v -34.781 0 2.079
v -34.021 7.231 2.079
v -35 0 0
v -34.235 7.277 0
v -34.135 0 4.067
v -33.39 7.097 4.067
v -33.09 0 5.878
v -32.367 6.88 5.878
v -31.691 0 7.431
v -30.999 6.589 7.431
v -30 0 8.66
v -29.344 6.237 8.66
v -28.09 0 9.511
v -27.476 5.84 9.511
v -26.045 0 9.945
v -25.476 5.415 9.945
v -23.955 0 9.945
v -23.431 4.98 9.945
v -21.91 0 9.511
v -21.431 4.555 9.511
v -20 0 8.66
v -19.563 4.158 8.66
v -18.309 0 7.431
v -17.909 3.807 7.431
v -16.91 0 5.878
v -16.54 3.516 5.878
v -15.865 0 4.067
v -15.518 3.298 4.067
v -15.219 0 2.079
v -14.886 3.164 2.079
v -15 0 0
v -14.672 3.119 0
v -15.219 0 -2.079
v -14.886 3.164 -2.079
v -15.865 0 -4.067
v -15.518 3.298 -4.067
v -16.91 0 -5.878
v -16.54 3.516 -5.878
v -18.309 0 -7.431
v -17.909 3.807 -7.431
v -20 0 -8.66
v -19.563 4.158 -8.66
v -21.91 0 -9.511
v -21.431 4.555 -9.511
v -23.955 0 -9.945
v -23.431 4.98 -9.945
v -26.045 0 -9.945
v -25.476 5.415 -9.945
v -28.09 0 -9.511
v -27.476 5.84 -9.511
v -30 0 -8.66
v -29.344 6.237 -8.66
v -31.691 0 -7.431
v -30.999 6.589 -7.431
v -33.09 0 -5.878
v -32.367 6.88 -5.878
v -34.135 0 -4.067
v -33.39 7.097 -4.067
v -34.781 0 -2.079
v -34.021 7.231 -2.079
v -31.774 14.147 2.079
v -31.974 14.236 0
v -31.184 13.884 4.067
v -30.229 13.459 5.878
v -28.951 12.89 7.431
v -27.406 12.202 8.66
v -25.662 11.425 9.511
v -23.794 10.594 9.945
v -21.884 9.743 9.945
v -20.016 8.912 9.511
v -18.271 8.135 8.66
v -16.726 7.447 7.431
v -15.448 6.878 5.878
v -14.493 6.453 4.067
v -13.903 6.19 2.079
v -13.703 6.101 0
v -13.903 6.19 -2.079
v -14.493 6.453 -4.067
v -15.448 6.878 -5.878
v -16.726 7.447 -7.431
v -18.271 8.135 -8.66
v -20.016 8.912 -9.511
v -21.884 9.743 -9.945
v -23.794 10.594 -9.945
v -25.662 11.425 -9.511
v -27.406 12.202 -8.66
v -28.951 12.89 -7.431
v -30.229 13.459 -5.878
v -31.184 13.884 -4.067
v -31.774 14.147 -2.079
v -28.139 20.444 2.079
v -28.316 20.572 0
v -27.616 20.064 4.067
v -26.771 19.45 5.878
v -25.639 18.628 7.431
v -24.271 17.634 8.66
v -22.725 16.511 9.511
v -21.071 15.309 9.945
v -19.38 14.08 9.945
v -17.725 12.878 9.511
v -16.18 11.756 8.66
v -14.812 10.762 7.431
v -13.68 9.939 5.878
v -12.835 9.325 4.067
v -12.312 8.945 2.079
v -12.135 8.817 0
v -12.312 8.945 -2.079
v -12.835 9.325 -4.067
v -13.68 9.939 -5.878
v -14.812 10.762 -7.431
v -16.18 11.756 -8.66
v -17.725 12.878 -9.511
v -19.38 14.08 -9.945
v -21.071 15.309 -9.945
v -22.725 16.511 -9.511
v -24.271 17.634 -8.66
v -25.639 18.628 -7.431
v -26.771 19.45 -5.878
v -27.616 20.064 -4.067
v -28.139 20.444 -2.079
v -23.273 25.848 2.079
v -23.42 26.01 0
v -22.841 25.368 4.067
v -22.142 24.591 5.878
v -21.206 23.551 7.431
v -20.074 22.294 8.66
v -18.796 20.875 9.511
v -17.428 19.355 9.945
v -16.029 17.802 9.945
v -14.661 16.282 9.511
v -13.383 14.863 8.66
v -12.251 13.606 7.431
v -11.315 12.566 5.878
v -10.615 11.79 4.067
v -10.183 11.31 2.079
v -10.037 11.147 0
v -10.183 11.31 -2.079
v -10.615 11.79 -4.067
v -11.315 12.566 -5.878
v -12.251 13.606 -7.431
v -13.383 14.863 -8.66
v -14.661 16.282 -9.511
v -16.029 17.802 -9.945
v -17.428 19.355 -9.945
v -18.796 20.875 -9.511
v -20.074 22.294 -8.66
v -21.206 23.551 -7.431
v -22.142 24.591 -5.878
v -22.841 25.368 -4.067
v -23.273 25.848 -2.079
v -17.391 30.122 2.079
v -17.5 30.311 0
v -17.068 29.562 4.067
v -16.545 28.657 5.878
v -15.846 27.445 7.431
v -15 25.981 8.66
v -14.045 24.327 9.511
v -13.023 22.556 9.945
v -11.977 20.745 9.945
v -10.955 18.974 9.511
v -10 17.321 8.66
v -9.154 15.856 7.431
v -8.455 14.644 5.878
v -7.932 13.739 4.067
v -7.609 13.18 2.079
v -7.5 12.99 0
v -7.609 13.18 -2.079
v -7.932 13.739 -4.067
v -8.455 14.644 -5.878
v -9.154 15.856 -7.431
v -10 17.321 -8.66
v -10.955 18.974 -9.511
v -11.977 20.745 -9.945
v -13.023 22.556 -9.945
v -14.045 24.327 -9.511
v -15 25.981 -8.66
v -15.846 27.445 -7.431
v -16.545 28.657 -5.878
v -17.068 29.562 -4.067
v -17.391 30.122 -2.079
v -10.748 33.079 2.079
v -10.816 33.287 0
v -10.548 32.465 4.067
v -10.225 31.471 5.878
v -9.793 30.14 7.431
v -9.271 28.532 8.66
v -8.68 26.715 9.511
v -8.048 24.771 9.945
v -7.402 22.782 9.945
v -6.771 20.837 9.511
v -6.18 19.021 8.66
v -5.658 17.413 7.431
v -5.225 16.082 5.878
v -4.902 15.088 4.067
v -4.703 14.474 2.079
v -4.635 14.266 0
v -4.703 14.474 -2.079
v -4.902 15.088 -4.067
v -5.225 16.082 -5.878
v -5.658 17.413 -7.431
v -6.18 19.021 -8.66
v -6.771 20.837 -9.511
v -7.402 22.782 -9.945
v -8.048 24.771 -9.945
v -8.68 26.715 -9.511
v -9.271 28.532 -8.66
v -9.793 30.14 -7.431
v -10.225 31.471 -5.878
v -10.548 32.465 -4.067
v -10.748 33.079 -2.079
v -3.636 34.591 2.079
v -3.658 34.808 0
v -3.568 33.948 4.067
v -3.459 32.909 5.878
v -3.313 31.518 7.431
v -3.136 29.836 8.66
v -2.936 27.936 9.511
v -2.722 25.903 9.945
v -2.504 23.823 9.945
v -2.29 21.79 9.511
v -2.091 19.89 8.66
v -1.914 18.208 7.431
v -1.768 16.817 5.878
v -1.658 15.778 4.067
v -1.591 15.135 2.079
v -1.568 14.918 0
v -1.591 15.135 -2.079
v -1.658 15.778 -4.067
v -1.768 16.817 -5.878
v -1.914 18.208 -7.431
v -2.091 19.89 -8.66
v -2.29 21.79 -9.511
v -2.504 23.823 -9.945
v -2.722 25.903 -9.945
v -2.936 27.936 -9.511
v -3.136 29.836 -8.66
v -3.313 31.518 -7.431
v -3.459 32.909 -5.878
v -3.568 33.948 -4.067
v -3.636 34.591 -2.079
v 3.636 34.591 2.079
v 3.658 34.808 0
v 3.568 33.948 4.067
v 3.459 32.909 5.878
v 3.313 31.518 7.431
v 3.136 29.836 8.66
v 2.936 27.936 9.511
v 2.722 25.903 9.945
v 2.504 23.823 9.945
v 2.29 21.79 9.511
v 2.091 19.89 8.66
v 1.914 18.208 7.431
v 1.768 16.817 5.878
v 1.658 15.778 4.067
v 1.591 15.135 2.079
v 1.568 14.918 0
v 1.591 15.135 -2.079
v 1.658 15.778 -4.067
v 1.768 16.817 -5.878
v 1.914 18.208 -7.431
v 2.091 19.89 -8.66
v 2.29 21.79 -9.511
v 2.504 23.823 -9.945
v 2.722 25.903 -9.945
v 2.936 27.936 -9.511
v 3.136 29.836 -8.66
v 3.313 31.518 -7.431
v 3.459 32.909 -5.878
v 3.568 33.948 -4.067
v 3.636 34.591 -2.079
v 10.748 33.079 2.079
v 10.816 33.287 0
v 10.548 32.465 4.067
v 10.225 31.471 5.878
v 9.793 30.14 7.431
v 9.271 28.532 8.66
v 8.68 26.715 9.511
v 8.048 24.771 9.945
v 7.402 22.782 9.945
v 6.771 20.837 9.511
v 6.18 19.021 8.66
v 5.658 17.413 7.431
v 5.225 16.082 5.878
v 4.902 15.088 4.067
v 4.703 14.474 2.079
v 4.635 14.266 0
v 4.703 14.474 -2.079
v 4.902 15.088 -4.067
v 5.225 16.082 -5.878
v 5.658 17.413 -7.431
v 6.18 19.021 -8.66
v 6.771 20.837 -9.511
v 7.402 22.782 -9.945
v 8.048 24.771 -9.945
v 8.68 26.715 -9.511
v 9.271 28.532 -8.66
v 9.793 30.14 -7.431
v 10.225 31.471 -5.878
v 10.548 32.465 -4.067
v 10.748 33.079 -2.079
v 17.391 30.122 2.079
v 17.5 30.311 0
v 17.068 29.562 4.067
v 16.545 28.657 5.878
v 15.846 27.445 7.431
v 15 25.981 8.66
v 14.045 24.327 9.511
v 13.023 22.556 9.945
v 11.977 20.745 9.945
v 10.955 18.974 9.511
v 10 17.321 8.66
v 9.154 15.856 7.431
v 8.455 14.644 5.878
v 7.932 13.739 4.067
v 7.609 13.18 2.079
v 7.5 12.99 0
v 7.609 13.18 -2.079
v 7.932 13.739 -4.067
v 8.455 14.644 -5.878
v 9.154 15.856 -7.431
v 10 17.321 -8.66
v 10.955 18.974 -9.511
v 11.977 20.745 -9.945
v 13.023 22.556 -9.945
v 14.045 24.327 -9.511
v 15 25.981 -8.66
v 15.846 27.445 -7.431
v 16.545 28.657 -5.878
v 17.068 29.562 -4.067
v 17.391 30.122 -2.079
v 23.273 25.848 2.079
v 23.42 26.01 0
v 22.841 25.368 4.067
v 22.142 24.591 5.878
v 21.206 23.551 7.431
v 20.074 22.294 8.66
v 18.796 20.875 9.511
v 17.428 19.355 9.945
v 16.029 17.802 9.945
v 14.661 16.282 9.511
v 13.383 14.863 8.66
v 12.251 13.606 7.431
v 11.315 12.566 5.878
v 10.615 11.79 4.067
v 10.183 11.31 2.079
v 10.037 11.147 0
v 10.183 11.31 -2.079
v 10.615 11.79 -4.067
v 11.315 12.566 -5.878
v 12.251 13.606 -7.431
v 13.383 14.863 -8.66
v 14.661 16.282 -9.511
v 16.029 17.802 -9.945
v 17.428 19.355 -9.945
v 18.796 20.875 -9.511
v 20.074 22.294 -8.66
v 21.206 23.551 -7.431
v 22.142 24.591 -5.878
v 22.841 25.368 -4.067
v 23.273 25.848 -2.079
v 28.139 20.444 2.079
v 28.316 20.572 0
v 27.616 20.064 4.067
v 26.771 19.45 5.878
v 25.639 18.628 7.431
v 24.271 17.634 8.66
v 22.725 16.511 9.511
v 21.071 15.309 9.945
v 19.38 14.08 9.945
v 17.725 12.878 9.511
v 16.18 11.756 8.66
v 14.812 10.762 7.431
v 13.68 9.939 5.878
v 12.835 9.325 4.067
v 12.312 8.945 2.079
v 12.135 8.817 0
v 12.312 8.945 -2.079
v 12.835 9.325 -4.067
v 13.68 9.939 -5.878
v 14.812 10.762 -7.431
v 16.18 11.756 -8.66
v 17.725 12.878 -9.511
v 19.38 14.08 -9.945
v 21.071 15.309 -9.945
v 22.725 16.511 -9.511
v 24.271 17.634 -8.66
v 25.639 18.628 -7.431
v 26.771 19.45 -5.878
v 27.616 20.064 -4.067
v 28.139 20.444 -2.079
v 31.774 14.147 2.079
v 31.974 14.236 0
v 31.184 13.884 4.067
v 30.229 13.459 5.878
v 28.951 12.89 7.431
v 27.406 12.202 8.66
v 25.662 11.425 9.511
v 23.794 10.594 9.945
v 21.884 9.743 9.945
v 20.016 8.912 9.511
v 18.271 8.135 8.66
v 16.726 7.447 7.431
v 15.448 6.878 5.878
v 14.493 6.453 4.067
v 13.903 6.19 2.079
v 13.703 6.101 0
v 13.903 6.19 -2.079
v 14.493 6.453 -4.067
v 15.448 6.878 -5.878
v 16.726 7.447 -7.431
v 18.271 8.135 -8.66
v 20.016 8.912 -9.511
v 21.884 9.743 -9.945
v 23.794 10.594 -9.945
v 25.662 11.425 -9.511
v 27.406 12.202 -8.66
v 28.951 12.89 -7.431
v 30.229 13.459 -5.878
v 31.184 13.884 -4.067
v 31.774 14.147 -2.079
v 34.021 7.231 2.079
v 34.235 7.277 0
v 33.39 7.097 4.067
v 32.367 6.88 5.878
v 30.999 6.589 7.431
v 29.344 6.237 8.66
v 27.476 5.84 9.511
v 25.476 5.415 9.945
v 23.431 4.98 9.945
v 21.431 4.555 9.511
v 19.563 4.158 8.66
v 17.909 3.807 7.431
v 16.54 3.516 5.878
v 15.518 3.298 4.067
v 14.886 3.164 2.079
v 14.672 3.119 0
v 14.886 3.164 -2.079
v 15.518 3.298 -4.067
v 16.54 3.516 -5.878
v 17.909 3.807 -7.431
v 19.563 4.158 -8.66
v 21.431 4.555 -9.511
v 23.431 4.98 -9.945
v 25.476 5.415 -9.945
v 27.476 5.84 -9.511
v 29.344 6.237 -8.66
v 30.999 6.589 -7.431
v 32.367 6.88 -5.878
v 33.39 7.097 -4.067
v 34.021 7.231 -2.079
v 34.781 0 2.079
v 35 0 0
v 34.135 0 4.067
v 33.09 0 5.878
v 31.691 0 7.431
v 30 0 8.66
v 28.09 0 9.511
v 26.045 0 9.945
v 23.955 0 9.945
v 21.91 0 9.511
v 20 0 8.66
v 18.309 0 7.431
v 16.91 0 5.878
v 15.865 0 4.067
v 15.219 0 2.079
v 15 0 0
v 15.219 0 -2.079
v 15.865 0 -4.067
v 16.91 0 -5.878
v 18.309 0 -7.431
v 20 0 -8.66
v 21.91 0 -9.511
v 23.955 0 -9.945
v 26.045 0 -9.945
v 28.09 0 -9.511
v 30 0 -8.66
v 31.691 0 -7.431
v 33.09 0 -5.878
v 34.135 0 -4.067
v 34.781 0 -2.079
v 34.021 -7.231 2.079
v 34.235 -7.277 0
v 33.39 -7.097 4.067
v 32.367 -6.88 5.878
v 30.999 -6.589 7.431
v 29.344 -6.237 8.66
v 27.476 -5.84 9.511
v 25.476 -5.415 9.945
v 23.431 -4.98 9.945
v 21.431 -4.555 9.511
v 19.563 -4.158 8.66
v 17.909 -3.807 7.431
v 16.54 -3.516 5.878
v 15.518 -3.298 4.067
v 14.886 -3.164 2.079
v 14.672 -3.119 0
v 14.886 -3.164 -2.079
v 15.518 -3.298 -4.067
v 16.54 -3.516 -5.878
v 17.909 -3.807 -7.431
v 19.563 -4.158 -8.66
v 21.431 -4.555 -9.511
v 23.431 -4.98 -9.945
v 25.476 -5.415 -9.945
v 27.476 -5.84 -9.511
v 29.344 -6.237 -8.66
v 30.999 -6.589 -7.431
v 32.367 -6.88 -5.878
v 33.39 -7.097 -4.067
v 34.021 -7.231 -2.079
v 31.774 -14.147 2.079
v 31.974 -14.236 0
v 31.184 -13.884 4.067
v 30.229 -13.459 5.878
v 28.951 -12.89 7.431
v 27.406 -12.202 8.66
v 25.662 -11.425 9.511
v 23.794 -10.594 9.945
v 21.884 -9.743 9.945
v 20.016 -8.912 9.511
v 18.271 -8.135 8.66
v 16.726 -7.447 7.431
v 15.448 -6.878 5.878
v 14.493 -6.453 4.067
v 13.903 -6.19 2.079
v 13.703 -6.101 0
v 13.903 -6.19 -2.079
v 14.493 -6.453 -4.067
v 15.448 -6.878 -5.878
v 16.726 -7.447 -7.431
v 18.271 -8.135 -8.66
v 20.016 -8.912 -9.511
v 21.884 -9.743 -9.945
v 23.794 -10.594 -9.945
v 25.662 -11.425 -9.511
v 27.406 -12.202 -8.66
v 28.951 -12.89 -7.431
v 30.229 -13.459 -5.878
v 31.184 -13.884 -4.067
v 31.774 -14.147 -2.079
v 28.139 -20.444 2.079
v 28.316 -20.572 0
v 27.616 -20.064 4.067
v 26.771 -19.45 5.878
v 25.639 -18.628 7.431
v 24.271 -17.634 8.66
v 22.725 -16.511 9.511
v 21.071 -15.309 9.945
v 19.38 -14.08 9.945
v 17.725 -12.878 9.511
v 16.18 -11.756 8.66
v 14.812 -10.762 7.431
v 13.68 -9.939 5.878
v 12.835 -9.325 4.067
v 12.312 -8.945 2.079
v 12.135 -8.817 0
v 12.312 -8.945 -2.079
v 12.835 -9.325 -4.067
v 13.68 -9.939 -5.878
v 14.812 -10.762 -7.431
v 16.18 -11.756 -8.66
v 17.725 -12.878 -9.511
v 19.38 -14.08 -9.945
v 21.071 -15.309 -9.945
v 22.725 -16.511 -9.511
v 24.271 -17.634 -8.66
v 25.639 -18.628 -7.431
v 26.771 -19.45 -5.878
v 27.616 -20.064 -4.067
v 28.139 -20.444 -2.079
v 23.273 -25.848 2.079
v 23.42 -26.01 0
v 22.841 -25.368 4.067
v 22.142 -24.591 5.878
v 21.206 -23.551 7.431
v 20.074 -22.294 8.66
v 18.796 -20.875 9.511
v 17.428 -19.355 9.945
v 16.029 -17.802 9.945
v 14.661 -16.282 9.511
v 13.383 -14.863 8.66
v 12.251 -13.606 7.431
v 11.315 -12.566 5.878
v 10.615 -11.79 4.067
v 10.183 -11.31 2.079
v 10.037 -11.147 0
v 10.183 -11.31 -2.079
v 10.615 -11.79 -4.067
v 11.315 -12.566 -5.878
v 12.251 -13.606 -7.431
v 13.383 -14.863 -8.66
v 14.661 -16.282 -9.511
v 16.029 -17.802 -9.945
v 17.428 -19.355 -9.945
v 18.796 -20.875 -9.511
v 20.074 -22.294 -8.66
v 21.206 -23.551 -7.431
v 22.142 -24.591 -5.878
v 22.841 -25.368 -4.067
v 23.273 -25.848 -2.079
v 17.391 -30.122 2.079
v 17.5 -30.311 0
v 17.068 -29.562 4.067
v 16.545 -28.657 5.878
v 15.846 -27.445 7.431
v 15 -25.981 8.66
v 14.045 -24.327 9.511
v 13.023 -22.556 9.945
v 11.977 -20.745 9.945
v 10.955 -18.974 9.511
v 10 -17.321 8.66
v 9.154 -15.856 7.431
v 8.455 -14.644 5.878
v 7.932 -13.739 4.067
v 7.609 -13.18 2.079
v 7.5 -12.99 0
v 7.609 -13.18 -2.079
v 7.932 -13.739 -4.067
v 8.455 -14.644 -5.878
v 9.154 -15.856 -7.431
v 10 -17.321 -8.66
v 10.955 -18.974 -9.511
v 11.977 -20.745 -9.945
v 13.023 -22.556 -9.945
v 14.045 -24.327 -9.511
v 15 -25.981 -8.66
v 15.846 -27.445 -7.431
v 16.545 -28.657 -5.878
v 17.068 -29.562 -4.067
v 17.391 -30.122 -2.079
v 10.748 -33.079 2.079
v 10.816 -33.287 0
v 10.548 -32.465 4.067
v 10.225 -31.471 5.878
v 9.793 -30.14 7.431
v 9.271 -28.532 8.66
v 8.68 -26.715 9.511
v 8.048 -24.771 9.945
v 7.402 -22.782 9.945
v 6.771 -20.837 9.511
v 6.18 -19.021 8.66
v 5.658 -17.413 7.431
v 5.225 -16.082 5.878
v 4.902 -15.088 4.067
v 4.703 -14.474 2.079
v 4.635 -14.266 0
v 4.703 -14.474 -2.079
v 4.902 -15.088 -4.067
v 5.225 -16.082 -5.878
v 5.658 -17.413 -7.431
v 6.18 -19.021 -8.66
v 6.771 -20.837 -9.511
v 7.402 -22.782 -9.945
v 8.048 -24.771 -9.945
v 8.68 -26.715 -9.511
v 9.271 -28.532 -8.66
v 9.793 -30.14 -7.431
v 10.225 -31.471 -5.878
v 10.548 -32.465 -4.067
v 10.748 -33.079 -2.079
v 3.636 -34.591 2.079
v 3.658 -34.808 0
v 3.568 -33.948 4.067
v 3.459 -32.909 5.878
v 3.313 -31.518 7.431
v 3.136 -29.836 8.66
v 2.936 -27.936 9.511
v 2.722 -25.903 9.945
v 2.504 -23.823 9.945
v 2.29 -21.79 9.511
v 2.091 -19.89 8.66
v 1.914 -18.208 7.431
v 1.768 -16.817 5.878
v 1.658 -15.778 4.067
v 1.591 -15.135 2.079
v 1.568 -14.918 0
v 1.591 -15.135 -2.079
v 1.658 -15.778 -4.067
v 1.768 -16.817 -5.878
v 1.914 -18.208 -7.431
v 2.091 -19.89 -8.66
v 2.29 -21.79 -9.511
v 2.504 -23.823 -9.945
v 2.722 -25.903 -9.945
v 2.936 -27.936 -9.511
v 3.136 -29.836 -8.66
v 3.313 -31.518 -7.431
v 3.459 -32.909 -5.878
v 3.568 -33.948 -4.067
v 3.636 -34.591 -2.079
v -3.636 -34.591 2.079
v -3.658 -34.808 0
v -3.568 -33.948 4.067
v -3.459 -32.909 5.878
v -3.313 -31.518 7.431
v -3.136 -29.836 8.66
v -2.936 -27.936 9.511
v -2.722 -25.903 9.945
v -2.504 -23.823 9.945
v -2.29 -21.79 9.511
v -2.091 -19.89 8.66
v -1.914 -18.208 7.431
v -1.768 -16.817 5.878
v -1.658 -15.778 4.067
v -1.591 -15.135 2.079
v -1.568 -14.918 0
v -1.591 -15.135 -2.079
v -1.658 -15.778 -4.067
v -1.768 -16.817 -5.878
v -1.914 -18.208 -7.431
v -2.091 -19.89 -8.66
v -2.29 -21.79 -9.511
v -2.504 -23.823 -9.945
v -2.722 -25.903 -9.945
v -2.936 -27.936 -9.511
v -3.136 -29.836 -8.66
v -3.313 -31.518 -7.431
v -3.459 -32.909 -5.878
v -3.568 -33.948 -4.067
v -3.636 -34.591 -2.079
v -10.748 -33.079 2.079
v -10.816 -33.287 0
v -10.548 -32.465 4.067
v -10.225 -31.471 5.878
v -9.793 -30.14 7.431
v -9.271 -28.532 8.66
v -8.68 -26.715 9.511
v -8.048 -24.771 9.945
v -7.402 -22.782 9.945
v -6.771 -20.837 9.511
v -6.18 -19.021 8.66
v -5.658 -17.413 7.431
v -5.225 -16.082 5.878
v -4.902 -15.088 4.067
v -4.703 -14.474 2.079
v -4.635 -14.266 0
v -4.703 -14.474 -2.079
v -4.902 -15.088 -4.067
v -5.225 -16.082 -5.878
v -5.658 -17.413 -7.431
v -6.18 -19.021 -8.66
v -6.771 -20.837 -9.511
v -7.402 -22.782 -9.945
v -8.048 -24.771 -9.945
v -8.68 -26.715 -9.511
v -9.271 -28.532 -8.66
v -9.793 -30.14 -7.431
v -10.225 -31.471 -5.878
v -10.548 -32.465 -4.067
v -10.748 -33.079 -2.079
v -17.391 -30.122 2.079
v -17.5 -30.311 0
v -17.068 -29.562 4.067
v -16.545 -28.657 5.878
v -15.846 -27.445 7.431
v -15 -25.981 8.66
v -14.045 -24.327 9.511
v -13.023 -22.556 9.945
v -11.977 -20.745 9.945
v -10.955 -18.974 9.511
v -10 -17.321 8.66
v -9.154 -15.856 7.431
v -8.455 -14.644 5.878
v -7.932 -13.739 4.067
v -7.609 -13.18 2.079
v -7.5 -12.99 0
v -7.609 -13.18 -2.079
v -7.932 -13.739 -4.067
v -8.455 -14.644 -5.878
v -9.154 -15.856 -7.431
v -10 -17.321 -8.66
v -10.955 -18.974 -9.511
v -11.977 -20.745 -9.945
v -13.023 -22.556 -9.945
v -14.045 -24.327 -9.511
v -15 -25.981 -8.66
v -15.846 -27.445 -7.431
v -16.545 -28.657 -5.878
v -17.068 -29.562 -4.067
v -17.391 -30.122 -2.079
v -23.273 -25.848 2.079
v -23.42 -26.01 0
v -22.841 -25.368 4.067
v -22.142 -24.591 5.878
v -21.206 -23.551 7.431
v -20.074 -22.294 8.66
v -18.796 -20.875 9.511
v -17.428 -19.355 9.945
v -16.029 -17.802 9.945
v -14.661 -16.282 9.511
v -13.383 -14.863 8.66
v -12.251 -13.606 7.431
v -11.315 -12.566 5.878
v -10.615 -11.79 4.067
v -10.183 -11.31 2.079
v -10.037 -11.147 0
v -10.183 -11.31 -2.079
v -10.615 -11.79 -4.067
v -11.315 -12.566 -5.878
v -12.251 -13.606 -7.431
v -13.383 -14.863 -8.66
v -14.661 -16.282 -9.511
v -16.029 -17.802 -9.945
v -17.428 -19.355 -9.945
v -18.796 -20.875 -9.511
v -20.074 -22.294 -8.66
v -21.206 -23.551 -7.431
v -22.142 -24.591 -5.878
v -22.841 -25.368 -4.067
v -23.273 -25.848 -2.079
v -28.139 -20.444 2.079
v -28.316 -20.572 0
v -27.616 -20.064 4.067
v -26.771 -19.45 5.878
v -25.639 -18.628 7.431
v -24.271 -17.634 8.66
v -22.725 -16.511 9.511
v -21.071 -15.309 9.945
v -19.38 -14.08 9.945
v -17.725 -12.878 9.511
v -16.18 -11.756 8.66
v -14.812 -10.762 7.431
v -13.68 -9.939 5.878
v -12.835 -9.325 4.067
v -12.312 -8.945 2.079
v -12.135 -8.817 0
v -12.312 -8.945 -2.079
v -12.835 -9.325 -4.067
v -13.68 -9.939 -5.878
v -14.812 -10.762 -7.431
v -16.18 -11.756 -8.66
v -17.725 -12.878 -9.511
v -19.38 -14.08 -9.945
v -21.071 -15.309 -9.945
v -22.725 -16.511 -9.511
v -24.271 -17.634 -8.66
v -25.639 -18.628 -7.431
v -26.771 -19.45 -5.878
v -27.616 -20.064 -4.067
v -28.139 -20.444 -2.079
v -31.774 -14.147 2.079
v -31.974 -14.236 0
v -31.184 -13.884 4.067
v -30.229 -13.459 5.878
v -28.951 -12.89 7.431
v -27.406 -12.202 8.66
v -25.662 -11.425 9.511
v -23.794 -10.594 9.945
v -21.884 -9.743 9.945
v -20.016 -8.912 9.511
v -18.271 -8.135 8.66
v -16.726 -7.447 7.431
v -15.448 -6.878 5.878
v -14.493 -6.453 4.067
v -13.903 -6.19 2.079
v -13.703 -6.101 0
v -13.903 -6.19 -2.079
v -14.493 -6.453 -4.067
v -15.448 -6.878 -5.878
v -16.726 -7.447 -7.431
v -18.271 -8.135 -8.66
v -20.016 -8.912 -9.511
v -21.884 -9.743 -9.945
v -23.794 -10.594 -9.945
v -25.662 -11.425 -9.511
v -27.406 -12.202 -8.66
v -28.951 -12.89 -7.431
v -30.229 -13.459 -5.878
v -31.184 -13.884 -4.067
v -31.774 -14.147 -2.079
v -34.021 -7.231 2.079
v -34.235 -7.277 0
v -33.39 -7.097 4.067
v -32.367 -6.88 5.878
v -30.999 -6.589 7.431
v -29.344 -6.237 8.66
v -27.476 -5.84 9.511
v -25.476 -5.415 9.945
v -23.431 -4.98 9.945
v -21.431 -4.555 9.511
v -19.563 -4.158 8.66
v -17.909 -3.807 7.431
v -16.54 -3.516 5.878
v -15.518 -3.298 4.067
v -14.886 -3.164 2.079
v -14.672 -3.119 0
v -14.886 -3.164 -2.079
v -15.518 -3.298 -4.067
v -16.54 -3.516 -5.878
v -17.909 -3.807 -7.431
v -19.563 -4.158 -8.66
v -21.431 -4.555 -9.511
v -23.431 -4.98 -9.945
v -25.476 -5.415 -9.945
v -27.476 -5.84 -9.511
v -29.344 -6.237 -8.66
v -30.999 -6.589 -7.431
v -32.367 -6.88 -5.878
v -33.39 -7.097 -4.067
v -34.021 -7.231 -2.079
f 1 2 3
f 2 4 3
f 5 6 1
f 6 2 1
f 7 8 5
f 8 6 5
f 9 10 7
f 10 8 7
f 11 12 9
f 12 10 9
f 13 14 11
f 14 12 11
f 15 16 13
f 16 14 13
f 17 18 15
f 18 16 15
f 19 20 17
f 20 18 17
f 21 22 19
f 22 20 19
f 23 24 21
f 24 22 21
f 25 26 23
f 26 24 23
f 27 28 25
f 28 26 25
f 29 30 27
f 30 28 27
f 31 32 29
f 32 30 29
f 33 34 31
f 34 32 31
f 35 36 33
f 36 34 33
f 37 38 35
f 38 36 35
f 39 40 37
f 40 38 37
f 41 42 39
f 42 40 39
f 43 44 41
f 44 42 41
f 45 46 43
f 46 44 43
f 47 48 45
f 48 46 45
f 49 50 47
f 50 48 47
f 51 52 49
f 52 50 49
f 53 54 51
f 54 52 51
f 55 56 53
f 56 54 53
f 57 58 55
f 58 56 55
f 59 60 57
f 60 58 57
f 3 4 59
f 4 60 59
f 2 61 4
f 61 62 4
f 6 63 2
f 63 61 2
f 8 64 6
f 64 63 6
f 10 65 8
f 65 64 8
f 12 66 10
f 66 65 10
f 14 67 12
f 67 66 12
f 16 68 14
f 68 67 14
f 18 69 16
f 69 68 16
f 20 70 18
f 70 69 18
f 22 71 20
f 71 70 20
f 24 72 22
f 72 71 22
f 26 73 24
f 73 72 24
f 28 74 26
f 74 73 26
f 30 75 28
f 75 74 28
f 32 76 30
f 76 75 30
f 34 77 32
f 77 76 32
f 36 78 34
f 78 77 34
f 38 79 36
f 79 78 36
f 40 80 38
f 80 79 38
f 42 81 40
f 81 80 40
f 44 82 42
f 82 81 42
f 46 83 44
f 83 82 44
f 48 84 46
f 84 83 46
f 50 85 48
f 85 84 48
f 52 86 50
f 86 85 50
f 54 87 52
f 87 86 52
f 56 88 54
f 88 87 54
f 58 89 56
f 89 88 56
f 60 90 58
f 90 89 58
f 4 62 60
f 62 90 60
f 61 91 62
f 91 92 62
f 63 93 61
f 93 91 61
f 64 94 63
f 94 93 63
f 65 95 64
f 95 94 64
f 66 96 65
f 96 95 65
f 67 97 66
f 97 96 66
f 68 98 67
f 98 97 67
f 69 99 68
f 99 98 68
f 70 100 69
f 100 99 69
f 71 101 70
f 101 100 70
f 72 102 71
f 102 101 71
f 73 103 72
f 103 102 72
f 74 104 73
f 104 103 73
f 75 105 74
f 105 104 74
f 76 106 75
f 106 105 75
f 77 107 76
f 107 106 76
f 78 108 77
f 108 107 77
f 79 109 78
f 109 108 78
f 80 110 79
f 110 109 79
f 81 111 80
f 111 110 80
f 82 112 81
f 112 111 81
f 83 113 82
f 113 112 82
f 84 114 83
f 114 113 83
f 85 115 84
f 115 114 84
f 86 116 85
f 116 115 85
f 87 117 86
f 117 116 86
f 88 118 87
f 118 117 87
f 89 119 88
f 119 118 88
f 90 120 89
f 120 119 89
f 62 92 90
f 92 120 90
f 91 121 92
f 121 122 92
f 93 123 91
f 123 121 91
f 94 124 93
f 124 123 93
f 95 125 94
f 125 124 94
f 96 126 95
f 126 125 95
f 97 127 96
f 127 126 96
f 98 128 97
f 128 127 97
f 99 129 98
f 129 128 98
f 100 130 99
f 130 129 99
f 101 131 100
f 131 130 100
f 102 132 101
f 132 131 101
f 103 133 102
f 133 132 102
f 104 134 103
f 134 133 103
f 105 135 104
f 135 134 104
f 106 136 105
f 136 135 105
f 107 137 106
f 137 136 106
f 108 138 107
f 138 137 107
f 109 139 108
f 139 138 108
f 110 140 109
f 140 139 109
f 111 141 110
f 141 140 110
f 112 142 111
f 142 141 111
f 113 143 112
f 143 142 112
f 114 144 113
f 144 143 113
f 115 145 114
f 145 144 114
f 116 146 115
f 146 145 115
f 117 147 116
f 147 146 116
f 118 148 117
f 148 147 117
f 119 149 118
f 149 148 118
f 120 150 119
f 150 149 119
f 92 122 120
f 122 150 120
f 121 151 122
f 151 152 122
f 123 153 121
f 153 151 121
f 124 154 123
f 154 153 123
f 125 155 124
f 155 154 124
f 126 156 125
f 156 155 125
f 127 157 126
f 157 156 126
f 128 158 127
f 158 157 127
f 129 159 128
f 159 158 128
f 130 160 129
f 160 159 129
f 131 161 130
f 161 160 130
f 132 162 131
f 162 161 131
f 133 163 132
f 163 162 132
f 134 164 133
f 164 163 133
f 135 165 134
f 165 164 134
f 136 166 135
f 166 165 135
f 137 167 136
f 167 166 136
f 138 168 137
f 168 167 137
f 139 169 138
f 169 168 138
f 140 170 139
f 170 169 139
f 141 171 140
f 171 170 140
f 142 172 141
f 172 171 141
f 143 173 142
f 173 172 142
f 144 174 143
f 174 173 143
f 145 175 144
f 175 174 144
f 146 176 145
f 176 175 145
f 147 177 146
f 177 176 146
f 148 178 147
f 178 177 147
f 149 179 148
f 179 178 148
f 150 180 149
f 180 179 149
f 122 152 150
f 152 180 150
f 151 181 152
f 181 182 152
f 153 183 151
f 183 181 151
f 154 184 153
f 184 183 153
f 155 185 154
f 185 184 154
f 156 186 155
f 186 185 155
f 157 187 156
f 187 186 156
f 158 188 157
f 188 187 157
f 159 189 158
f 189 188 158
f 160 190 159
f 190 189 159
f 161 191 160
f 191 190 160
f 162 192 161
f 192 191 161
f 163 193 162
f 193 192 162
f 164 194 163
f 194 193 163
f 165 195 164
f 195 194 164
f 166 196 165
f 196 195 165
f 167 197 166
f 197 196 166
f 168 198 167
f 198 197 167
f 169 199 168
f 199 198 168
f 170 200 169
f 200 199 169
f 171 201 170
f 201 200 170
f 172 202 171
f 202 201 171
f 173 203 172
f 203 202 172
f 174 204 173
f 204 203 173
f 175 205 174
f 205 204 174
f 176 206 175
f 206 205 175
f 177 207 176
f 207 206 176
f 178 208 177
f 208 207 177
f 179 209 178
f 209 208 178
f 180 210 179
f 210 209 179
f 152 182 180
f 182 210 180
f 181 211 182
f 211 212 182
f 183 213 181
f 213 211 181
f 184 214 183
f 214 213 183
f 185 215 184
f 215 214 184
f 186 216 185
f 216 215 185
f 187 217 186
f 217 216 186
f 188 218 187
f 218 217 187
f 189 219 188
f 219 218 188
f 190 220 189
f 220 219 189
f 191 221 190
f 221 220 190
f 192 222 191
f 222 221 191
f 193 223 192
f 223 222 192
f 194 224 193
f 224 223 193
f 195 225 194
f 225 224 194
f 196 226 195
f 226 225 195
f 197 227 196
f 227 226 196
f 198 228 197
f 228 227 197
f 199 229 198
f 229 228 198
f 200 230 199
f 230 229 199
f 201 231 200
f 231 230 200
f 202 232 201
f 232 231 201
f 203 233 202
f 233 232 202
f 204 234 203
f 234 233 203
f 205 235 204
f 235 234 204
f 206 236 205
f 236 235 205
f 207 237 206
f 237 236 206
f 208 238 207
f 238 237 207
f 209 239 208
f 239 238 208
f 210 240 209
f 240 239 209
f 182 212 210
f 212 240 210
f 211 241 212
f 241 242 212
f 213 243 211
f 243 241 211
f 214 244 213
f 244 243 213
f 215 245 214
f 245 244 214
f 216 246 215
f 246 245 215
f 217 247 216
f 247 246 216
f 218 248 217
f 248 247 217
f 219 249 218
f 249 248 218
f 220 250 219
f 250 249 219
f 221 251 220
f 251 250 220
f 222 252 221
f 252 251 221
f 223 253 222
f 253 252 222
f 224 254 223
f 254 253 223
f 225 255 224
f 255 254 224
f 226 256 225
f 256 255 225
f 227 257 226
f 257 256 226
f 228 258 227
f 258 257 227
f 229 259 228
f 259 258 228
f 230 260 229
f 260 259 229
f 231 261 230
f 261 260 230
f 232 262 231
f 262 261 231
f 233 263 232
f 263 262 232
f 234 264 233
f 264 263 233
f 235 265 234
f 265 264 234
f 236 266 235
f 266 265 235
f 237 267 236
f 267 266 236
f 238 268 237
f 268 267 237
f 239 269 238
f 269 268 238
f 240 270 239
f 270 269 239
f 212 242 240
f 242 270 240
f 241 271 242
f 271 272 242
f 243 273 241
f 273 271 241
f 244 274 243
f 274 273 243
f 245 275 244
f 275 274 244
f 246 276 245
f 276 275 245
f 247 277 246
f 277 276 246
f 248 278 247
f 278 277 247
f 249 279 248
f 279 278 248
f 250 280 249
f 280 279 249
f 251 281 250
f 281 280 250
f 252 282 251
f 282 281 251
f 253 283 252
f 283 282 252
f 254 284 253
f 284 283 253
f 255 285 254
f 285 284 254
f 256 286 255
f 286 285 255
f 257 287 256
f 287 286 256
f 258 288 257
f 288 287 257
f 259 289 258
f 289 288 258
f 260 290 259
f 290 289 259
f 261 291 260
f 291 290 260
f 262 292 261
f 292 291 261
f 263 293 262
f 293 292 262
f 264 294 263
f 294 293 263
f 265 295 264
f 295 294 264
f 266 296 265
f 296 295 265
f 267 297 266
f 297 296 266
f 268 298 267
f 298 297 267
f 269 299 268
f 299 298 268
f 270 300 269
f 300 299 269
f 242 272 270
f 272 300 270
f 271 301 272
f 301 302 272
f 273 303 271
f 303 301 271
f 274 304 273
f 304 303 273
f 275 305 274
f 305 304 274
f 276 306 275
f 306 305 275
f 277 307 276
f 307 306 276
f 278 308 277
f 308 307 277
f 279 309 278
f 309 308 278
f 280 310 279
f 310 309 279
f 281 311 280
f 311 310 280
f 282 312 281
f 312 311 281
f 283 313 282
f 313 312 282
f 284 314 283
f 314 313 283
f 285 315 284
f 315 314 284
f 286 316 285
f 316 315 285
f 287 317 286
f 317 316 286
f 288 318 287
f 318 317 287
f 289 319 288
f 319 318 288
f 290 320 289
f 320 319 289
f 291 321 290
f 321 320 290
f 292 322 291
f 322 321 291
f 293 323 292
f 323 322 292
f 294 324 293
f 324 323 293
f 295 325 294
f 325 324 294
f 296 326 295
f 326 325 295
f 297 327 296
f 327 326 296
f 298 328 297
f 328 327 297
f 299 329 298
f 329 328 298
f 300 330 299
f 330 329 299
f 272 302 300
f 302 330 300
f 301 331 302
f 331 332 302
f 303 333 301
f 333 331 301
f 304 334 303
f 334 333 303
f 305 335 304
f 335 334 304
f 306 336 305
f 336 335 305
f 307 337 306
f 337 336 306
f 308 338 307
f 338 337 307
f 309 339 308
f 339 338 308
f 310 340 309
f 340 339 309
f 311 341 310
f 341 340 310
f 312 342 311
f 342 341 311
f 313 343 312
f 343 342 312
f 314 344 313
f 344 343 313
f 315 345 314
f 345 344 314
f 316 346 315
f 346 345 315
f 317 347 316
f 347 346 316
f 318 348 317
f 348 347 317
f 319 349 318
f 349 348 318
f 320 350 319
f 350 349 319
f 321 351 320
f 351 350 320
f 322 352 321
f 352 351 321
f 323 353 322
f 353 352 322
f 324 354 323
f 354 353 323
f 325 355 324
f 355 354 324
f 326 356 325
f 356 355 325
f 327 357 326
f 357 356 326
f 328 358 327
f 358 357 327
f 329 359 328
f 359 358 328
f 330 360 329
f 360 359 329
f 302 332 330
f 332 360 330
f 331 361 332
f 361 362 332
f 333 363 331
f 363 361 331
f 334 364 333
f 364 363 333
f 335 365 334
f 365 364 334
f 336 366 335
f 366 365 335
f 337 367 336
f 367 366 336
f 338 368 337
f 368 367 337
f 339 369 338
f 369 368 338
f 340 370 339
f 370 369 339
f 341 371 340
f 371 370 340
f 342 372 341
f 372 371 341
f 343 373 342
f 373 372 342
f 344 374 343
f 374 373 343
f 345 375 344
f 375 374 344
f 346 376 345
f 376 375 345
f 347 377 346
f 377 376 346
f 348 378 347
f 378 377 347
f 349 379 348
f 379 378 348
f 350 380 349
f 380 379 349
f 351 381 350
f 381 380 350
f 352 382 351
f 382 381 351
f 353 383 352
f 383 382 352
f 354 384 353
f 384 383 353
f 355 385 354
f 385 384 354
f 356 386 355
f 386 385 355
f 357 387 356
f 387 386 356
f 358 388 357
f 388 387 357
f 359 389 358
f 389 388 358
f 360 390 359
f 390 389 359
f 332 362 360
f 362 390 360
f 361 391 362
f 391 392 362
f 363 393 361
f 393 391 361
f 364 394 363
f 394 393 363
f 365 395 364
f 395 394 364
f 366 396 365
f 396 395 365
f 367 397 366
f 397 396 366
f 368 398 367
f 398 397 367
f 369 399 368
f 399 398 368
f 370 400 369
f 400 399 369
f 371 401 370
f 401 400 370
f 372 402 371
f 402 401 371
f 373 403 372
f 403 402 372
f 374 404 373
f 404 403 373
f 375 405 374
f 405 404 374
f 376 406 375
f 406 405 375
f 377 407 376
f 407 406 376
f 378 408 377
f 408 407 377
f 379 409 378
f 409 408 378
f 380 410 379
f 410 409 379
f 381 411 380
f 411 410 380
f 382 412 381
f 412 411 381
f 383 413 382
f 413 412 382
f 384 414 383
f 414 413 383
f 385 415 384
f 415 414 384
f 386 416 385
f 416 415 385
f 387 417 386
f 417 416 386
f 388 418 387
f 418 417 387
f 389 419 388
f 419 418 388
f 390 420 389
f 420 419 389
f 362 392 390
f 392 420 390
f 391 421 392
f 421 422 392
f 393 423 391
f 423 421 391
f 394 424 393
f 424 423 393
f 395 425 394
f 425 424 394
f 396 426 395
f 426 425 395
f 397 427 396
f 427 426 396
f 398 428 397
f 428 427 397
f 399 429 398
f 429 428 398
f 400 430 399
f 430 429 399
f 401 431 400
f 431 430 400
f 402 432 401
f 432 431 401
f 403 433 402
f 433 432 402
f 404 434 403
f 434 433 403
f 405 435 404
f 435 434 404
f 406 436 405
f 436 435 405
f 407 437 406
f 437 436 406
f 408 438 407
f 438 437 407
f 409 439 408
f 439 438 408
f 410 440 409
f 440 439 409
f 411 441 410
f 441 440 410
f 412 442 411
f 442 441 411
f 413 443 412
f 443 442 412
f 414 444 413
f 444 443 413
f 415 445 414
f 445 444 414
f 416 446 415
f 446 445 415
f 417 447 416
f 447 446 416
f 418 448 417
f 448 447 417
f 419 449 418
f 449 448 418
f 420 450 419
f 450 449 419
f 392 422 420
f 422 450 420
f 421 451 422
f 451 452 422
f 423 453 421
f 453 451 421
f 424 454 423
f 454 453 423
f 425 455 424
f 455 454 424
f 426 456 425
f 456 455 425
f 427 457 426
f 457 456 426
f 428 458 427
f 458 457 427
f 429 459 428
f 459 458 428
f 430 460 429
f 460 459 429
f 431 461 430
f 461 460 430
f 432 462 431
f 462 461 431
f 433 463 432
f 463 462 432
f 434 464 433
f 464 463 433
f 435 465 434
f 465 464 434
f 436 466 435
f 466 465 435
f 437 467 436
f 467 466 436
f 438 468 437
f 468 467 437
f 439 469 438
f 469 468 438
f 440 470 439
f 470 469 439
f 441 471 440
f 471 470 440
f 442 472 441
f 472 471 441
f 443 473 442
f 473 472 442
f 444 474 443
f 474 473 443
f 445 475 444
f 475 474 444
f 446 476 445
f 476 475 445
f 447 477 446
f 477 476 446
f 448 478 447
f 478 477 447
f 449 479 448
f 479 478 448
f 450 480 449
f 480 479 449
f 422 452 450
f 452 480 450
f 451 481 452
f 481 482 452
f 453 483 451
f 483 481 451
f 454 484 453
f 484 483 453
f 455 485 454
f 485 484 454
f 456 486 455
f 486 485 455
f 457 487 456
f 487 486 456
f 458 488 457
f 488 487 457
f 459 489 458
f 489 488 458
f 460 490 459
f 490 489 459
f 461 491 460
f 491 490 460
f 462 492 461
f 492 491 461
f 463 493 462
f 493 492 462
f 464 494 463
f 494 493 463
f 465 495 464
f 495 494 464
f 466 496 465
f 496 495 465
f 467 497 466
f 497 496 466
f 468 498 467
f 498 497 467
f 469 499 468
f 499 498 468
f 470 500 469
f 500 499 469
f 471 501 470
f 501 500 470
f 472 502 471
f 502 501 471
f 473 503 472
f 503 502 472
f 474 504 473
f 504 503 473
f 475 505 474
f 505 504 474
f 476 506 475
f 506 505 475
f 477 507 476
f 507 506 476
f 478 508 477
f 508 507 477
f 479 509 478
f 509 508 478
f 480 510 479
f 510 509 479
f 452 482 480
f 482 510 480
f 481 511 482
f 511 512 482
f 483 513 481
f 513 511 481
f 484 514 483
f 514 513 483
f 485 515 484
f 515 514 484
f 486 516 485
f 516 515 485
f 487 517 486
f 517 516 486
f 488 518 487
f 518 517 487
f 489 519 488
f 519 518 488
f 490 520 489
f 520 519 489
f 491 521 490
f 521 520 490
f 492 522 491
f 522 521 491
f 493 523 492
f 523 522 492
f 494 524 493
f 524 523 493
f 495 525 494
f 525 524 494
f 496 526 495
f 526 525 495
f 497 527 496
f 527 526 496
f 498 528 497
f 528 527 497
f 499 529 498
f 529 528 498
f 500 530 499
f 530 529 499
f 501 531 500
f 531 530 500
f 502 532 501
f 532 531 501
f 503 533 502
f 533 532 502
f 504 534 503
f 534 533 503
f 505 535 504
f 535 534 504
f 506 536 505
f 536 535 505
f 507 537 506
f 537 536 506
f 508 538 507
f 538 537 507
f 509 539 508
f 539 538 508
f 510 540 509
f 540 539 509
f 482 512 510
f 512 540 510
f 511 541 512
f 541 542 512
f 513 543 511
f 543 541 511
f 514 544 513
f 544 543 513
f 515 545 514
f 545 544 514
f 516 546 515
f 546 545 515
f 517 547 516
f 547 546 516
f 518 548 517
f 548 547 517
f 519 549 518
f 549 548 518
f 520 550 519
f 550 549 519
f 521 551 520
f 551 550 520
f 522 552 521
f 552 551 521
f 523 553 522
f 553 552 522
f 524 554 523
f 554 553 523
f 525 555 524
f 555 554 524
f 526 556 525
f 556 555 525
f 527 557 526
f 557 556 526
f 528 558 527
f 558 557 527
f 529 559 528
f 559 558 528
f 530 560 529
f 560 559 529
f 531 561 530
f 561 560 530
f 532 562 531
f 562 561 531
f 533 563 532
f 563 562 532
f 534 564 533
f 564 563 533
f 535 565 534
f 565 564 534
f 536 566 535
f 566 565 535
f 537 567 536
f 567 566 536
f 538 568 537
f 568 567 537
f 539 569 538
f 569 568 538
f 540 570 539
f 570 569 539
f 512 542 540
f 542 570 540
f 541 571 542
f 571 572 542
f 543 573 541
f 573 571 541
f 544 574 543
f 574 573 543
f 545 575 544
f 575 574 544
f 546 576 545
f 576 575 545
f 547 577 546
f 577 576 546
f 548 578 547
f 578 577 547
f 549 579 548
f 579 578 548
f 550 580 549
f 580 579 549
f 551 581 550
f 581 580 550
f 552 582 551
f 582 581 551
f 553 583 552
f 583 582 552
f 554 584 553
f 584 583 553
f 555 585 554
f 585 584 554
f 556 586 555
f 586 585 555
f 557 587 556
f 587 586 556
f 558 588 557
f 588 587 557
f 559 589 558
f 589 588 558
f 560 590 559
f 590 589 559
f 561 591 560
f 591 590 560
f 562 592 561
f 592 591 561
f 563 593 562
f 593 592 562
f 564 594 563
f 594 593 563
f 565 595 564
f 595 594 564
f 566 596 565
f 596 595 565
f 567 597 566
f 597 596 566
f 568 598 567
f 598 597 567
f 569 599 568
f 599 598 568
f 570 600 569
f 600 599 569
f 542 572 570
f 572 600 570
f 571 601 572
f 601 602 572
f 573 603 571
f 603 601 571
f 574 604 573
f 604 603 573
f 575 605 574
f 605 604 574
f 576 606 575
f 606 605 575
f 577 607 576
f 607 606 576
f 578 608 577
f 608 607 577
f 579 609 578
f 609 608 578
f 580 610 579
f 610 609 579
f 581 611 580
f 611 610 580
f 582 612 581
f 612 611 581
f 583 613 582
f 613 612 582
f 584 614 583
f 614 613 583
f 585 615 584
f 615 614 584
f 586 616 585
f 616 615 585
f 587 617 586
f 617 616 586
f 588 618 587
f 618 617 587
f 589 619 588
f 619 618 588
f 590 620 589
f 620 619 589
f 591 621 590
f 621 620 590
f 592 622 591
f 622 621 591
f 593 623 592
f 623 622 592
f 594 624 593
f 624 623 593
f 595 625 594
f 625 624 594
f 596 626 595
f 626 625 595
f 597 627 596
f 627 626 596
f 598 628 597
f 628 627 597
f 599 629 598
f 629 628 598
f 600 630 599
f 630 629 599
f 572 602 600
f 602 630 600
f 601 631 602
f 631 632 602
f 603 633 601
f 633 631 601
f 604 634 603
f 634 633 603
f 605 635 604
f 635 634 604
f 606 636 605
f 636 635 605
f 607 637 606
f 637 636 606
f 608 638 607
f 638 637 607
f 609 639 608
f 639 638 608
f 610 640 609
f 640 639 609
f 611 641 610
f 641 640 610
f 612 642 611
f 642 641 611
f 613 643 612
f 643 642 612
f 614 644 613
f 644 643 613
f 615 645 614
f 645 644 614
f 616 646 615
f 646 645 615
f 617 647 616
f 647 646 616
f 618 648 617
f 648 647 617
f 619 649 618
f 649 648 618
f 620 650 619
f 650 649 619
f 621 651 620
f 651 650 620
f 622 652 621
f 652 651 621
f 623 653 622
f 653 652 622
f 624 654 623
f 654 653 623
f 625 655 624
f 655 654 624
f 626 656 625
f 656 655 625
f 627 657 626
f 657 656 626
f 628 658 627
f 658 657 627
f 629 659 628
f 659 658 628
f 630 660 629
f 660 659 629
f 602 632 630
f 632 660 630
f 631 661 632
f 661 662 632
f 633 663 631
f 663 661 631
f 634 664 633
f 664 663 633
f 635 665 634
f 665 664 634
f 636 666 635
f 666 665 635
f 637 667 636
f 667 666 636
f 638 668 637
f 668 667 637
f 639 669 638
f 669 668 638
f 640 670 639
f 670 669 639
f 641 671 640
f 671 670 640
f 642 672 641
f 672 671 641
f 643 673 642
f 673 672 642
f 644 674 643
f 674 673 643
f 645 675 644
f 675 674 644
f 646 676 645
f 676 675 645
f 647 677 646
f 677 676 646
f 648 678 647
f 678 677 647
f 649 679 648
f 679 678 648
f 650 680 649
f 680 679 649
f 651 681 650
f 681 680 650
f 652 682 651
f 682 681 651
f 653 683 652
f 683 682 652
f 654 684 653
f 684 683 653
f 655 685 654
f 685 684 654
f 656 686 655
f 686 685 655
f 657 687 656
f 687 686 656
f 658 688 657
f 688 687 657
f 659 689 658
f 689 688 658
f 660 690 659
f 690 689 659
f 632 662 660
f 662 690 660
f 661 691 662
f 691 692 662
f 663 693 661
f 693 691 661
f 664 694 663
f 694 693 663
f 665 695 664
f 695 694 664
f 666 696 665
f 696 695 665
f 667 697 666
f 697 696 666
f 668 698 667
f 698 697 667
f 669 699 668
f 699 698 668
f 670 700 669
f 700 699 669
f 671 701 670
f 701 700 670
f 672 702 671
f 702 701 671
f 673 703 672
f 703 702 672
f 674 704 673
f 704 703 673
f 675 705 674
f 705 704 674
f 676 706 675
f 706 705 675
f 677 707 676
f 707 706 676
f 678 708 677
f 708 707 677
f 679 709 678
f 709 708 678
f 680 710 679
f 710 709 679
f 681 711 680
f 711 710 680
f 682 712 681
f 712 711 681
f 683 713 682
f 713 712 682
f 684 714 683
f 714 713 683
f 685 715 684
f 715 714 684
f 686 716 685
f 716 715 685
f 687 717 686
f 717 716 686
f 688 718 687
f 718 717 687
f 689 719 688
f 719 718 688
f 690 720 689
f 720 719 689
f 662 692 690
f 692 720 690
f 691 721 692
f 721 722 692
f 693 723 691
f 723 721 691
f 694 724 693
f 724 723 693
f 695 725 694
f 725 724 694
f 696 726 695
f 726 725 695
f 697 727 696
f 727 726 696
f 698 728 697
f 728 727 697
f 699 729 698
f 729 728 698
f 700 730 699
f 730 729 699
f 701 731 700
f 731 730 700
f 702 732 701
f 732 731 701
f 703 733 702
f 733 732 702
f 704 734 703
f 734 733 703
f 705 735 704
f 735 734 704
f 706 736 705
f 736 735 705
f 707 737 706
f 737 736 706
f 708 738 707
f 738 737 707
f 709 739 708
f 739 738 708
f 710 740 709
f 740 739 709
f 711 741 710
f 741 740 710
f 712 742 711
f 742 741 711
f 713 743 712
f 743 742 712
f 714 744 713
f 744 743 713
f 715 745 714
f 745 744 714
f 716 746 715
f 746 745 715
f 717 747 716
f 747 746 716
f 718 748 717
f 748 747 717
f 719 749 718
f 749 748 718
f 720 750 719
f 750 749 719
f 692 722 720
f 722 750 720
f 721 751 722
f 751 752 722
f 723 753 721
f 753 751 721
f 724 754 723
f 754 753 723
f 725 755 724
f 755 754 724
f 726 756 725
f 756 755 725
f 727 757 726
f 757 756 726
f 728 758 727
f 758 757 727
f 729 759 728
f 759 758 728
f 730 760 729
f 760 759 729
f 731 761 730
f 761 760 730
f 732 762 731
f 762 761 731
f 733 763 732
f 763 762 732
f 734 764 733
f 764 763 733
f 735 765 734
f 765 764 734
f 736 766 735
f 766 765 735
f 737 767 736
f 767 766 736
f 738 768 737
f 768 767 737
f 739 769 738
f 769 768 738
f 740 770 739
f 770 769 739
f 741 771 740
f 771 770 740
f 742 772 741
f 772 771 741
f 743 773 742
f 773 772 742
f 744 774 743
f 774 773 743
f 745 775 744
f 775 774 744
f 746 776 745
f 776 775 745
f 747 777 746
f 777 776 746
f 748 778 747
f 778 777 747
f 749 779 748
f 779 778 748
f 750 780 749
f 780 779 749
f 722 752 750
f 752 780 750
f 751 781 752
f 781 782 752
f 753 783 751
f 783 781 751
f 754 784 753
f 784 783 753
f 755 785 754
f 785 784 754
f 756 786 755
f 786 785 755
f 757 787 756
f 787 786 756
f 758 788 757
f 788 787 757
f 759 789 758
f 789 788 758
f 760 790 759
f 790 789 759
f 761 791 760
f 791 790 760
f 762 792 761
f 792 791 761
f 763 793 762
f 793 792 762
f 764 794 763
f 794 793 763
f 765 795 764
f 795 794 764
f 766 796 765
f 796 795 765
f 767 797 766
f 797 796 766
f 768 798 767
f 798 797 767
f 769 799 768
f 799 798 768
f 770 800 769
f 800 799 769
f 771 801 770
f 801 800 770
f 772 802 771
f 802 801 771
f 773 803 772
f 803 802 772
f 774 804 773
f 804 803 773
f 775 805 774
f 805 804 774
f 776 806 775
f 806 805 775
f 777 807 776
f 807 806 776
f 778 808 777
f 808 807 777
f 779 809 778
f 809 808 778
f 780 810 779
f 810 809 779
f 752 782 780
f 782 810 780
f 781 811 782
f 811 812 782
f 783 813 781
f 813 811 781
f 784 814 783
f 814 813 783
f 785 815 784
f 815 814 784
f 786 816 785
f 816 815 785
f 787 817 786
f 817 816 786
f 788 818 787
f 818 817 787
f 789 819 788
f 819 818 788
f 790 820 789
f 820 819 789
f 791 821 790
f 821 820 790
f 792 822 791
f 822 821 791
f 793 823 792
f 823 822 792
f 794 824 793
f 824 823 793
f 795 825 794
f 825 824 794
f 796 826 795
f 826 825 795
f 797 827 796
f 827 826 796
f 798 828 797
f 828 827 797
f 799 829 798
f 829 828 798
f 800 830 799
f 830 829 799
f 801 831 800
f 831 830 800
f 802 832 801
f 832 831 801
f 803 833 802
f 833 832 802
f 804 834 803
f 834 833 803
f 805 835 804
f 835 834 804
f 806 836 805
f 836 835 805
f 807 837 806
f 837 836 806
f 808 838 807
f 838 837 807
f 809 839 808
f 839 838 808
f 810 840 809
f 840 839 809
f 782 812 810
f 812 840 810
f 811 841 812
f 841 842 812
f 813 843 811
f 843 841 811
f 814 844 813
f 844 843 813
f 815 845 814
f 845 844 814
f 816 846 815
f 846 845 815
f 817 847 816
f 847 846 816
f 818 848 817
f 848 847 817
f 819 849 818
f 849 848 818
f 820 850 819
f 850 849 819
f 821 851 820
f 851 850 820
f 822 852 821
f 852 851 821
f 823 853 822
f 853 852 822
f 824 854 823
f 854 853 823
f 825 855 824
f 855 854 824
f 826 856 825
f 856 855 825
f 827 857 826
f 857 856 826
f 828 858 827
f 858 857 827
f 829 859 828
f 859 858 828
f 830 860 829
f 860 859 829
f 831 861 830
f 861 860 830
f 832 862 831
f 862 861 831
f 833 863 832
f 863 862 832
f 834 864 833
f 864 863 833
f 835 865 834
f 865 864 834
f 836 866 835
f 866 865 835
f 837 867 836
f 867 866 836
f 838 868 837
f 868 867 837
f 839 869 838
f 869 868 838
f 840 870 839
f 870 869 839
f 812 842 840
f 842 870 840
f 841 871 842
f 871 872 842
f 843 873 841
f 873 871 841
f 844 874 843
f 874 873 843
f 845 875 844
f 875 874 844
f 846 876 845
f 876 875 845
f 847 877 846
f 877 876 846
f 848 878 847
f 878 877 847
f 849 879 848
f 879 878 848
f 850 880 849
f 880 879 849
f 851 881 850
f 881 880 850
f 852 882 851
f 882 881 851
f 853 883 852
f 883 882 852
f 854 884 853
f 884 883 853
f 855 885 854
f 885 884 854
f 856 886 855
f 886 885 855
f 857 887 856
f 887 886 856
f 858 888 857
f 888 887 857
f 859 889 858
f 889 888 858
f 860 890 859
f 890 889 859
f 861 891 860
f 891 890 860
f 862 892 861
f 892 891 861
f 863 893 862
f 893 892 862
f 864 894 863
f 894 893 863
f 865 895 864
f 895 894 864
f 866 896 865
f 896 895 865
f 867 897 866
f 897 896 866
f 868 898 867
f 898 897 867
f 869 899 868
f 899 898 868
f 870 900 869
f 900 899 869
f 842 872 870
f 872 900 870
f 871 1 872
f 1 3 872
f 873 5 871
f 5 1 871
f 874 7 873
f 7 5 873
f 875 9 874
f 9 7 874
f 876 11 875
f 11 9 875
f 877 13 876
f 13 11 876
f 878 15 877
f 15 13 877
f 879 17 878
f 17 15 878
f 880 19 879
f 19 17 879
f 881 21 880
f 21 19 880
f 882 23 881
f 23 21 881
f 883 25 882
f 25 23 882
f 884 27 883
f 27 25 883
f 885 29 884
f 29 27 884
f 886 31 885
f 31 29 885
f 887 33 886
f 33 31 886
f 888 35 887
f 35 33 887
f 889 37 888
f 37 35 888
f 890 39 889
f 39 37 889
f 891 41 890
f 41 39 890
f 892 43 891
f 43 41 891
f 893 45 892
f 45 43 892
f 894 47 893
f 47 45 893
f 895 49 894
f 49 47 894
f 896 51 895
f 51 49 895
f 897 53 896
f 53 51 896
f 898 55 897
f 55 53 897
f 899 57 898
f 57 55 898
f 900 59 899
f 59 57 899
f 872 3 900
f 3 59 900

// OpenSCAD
rotate_extrude(angle = 360, convexity = 2)
translate([25,0])
circle(10);
